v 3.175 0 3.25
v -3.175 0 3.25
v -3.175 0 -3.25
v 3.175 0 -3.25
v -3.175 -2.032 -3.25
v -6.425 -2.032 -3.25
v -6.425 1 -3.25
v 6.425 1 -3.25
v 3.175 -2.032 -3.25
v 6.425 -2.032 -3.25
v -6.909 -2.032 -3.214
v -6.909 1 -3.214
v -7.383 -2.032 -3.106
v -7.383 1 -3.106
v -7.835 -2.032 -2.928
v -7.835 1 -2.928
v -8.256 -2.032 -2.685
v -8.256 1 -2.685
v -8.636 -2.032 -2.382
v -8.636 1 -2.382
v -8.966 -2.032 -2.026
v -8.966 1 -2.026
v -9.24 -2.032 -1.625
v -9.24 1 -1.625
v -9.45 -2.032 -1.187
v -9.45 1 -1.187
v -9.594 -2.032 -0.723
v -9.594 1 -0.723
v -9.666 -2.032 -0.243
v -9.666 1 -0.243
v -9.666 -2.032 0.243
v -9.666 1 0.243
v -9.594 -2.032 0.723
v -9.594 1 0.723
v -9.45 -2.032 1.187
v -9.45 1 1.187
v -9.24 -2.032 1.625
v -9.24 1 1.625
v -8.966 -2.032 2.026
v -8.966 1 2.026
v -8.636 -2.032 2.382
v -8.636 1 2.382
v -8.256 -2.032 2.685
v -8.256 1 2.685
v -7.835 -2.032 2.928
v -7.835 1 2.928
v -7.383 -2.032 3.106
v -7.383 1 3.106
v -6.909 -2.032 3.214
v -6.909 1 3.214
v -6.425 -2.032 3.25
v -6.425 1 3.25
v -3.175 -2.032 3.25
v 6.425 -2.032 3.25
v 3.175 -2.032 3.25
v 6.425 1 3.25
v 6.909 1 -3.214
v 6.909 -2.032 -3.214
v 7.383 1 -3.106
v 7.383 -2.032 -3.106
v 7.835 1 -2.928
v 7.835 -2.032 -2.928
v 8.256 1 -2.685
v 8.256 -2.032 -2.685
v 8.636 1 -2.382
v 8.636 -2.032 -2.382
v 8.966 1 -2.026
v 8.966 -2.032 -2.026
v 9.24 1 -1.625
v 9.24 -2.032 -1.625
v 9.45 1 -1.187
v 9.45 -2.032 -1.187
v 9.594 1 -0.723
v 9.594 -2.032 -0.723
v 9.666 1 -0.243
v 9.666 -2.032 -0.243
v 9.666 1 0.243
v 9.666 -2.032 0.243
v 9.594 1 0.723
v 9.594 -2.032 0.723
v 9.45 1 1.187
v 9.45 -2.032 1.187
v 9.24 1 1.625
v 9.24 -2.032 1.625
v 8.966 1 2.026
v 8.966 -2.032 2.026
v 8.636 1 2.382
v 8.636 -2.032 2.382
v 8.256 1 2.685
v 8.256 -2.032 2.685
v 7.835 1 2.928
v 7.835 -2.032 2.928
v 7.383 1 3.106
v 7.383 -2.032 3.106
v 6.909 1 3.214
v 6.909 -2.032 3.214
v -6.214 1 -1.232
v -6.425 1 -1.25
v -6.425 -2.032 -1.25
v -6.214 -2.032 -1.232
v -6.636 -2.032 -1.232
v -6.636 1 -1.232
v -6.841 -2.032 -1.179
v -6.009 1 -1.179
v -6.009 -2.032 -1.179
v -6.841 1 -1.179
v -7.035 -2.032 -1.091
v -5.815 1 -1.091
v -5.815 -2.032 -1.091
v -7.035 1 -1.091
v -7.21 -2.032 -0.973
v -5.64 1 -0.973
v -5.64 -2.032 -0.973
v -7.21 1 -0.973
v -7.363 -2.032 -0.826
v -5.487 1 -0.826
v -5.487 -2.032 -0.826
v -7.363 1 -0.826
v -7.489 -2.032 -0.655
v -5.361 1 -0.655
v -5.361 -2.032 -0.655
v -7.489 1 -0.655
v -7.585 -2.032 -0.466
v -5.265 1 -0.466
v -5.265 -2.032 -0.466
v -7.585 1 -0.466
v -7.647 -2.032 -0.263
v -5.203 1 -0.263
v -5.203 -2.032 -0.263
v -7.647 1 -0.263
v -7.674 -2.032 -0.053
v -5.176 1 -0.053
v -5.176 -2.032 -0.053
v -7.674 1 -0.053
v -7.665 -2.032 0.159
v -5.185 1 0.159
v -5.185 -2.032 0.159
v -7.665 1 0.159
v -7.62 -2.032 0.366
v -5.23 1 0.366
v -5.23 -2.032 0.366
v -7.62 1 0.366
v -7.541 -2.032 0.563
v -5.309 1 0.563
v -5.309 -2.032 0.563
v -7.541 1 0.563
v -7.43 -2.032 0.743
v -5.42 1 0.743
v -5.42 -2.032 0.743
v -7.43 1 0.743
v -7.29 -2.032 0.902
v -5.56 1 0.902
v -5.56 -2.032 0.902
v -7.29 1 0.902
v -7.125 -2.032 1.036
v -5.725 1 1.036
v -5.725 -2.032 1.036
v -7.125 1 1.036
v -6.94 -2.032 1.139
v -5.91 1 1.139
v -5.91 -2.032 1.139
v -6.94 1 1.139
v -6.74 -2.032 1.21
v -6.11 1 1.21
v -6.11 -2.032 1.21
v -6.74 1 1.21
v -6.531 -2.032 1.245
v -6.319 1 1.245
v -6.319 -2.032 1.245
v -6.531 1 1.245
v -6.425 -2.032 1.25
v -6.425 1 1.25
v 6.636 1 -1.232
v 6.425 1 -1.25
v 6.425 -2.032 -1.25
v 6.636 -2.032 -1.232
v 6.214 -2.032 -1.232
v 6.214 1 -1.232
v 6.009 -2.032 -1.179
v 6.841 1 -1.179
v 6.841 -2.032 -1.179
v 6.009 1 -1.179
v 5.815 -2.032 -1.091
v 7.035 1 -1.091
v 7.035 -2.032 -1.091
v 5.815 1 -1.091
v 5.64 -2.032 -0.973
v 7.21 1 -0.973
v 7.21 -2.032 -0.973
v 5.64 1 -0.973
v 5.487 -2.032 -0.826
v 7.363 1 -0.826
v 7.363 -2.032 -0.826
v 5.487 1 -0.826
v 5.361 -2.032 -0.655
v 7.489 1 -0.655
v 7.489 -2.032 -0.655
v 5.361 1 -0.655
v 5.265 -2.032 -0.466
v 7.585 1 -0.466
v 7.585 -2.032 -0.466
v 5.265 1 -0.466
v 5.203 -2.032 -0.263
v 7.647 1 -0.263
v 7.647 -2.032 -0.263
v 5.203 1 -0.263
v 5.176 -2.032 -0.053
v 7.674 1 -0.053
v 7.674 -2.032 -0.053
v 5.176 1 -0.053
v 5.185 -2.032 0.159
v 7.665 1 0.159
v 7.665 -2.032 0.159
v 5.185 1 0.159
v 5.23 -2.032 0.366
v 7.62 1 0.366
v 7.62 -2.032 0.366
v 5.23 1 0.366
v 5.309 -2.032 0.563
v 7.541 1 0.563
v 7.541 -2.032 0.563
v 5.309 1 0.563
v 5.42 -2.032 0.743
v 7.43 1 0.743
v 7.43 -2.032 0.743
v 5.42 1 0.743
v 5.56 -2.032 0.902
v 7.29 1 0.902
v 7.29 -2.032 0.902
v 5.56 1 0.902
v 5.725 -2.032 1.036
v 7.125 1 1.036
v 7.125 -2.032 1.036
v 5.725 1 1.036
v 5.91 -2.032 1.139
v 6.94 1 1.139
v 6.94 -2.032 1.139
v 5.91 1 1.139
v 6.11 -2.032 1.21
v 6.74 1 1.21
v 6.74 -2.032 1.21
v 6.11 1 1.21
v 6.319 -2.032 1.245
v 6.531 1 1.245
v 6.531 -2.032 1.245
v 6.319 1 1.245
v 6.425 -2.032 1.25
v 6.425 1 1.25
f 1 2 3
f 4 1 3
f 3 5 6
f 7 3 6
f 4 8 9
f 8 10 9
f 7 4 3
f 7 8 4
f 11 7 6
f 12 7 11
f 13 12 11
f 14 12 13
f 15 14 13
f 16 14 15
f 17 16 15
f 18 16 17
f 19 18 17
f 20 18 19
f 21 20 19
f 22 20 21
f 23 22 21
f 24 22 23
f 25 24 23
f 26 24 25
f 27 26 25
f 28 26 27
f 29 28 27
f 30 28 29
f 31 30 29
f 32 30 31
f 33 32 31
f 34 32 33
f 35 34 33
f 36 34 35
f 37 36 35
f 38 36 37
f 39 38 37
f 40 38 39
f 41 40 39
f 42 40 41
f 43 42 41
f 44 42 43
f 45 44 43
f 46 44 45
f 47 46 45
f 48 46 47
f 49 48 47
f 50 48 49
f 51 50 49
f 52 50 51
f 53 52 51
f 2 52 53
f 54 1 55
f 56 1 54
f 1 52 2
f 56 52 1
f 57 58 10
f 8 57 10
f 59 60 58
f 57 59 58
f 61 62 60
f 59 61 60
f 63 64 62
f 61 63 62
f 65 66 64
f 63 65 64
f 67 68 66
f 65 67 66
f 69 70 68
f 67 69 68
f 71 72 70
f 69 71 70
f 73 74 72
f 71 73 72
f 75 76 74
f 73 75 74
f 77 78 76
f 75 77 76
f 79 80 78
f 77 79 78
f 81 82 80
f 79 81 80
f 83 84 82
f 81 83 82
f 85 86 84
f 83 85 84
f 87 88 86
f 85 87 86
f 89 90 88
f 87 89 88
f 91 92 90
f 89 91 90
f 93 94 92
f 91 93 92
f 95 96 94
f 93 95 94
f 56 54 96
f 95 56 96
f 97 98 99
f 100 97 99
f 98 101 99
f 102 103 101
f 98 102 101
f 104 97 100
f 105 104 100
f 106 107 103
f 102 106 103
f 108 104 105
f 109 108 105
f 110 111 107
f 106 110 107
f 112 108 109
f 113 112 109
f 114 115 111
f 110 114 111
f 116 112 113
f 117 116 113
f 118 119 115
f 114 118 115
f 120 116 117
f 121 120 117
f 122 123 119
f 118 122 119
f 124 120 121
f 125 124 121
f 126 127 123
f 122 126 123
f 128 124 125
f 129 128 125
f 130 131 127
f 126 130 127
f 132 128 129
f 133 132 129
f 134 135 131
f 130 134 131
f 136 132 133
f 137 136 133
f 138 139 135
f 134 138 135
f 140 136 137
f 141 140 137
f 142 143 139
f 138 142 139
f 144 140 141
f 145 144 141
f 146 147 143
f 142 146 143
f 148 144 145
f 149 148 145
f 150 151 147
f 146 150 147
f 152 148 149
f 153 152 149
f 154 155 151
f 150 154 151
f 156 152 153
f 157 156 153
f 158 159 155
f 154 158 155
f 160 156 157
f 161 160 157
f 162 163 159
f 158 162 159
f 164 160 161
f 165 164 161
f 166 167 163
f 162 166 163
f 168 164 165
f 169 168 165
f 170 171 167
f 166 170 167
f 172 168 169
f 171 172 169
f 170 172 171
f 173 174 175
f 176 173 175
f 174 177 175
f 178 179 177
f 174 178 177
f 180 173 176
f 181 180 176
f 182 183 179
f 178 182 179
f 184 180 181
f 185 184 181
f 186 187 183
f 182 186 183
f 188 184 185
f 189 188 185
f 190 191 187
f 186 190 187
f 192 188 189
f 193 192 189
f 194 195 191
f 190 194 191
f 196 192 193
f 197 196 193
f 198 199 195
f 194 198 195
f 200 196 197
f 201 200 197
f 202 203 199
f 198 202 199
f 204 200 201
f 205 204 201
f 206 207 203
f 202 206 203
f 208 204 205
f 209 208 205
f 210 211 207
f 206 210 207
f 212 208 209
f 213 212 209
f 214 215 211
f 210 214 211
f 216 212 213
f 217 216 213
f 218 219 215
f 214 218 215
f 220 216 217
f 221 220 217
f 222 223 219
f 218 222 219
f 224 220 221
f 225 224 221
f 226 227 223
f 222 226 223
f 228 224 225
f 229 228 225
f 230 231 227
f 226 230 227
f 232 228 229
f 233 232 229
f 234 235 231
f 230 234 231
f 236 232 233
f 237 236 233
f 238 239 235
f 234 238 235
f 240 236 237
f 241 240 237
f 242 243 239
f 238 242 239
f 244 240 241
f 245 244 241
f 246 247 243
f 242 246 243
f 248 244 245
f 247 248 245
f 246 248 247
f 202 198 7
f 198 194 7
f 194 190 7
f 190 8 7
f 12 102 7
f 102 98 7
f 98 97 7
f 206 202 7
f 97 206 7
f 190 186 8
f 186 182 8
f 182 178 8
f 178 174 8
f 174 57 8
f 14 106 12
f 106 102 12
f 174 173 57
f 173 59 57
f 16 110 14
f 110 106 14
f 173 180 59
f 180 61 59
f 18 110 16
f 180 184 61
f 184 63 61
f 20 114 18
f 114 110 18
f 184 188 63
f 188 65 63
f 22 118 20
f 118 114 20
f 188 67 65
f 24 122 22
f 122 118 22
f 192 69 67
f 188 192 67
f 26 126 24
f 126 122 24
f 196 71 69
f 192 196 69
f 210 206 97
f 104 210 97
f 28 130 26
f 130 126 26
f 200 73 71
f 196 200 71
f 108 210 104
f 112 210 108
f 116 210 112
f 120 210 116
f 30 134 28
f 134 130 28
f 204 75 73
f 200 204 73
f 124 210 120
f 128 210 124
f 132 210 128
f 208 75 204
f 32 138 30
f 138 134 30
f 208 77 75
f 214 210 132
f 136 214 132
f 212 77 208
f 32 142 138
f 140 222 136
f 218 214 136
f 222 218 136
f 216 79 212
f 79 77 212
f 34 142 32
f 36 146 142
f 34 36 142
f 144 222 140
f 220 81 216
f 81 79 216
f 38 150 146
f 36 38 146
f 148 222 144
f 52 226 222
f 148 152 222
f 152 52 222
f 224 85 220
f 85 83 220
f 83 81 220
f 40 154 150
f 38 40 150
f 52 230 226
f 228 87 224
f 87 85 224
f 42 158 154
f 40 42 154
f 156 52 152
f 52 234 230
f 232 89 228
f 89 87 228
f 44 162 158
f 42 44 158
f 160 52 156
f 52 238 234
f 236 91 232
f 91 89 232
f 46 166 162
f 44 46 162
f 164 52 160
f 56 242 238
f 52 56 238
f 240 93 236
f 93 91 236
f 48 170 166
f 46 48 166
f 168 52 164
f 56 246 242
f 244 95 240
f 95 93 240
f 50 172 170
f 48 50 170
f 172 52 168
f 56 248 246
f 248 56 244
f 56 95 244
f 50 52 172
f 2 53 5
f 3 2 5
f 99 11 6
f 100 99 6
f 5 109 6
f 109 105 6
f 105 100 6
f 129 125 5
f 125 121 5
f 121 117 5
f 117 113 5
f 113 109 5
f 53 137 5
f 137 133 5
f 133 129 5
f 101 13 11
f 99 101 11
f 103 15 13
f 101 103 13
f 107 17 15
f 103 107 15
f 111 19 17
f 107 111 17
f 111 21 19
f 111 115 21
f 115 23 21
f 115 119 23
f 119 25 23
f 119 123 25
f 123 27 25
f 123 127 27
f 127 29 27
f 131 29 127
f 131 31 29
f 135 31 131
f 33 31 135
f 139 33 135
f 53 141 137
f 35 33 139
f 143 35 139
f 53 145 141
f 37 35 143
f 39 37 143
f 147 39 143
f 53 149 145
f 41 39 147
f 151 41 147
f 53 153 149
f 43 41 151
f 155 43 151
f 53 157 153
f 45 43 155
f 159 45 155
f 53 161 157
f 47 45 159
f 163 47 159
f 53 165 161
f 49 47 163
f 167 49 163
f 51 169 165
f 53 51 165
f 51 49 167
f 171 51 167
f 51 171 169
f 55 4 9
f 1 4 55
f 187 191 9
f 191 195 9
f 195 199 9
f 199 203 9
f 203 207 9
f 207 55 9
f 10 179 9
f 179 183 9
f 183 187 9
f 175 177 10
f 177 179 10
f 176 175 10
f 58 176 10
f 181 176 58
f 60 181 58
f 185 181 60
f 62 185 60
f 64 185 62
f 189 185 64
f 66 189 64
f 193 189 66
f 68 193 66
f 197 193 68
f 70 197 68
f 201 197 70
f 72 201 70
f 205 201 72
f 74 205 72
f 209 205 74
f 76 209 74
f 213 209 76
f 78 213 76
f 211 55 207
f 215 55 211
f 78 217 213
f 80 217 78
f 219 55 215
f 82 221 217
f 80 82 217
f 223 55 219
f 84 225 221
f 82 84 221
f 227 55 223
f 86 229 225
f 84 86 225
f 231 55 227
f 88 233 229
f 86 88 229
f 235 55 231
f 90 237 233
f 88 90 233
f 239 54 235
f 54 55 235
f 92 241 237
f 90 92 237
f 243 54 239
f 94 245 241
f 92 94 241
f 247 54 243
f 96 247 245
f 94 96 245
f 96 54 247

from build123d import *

# Parameters (mm, degrees)
SKETCH2_R           = 1.25
BOSS_EXTRUDE1_DEPTH = 1
BOSS_EXTRUDE2_START = -2.032
SKETCH2_3_R         = 1.25
BOSS_EXTRUDE2_DEPTH = 2.032


with BuildPart() as part:
    # Sketch2 → Boss-Extrude1 (new body)
    with BuildSketch(Plane(origin=(0, 0, 0), x_dir=(1, 0, 0), z_dir=(0, 1, 0))):
        with BuildLine():
            ThreePointArc((-6.425, 3.25), (-9.675, 0), (-6.425, -3.25))
            Line((-6.425, -3.25), (6.425, -3.25))
            ThreePointArc((6.425, -3.25), (9.675, 0), (6.425, 3.25))
            Line((6.425, 3.25), (-6.425, 3.25))
        make_face()
        with Locations((-6.425, 0)):
            Circle(SKETCH2_R, mode=Mode.SUBTRACT)
        with Locations((6.425, 0)):
            Circle(SKETCH2_R, mode=Mode.SUBTRACT)
    extrude(amount=BOSS_EXTRUDE1_DEPTH)

    # Sketch2<3> → Boss-Extrude2 (add)
    # profile 1 of 2: a face of its own
    with BuildSketch(Plane(origin=(0, 0, 0), x_dir=(1, 0, 0), z_dir=(0, 1, 0)).offset(BOSS_EXTRUDE2_START)):
        with BuildLine():
            Line((-3.175, 3.25), (-6.425, 3.25))
            ThreePointArc((-6.425, 3.25), (-9.675, 0), (-6.425, -3.25))
            Line((-6.425, -3.25), (-3.175, -3.25))
            Line((-3.175, -3.25), (-3.175, 3.25))
        make_face()
        with Locations((-6.425, 0)):
            Circle(SKETCH2_3_R, mode=Mode.SUBTRACT)
    # profile 2 of 2: a face of its own
    with BuildSketch(Plane(origin=(0, 0, 0), x_dir=(1, 0, 0), z_dir=(0, 1, 0)).offset(BOSS_EXTRUDE2_START)):
        with BuildLine():
            Line((6.425, 3.25), (3.175, 3.25))
            Line((3.175, 3.25), (3.175, -3.25))
            Line((3.175, -3.25), (6.425, -3.25))
            ThreePointArc((6.425, -3.25), (9.675, 0), (6.425, 3.25))
        make_face()
        with Locations((6.425, 0)):
            Circle(SKETCH2_3_R, mode=Mode.SUBTRACT)
    extrude(amount=BOSS_EXTRUDE2_DEPTH)


solid = part.part
